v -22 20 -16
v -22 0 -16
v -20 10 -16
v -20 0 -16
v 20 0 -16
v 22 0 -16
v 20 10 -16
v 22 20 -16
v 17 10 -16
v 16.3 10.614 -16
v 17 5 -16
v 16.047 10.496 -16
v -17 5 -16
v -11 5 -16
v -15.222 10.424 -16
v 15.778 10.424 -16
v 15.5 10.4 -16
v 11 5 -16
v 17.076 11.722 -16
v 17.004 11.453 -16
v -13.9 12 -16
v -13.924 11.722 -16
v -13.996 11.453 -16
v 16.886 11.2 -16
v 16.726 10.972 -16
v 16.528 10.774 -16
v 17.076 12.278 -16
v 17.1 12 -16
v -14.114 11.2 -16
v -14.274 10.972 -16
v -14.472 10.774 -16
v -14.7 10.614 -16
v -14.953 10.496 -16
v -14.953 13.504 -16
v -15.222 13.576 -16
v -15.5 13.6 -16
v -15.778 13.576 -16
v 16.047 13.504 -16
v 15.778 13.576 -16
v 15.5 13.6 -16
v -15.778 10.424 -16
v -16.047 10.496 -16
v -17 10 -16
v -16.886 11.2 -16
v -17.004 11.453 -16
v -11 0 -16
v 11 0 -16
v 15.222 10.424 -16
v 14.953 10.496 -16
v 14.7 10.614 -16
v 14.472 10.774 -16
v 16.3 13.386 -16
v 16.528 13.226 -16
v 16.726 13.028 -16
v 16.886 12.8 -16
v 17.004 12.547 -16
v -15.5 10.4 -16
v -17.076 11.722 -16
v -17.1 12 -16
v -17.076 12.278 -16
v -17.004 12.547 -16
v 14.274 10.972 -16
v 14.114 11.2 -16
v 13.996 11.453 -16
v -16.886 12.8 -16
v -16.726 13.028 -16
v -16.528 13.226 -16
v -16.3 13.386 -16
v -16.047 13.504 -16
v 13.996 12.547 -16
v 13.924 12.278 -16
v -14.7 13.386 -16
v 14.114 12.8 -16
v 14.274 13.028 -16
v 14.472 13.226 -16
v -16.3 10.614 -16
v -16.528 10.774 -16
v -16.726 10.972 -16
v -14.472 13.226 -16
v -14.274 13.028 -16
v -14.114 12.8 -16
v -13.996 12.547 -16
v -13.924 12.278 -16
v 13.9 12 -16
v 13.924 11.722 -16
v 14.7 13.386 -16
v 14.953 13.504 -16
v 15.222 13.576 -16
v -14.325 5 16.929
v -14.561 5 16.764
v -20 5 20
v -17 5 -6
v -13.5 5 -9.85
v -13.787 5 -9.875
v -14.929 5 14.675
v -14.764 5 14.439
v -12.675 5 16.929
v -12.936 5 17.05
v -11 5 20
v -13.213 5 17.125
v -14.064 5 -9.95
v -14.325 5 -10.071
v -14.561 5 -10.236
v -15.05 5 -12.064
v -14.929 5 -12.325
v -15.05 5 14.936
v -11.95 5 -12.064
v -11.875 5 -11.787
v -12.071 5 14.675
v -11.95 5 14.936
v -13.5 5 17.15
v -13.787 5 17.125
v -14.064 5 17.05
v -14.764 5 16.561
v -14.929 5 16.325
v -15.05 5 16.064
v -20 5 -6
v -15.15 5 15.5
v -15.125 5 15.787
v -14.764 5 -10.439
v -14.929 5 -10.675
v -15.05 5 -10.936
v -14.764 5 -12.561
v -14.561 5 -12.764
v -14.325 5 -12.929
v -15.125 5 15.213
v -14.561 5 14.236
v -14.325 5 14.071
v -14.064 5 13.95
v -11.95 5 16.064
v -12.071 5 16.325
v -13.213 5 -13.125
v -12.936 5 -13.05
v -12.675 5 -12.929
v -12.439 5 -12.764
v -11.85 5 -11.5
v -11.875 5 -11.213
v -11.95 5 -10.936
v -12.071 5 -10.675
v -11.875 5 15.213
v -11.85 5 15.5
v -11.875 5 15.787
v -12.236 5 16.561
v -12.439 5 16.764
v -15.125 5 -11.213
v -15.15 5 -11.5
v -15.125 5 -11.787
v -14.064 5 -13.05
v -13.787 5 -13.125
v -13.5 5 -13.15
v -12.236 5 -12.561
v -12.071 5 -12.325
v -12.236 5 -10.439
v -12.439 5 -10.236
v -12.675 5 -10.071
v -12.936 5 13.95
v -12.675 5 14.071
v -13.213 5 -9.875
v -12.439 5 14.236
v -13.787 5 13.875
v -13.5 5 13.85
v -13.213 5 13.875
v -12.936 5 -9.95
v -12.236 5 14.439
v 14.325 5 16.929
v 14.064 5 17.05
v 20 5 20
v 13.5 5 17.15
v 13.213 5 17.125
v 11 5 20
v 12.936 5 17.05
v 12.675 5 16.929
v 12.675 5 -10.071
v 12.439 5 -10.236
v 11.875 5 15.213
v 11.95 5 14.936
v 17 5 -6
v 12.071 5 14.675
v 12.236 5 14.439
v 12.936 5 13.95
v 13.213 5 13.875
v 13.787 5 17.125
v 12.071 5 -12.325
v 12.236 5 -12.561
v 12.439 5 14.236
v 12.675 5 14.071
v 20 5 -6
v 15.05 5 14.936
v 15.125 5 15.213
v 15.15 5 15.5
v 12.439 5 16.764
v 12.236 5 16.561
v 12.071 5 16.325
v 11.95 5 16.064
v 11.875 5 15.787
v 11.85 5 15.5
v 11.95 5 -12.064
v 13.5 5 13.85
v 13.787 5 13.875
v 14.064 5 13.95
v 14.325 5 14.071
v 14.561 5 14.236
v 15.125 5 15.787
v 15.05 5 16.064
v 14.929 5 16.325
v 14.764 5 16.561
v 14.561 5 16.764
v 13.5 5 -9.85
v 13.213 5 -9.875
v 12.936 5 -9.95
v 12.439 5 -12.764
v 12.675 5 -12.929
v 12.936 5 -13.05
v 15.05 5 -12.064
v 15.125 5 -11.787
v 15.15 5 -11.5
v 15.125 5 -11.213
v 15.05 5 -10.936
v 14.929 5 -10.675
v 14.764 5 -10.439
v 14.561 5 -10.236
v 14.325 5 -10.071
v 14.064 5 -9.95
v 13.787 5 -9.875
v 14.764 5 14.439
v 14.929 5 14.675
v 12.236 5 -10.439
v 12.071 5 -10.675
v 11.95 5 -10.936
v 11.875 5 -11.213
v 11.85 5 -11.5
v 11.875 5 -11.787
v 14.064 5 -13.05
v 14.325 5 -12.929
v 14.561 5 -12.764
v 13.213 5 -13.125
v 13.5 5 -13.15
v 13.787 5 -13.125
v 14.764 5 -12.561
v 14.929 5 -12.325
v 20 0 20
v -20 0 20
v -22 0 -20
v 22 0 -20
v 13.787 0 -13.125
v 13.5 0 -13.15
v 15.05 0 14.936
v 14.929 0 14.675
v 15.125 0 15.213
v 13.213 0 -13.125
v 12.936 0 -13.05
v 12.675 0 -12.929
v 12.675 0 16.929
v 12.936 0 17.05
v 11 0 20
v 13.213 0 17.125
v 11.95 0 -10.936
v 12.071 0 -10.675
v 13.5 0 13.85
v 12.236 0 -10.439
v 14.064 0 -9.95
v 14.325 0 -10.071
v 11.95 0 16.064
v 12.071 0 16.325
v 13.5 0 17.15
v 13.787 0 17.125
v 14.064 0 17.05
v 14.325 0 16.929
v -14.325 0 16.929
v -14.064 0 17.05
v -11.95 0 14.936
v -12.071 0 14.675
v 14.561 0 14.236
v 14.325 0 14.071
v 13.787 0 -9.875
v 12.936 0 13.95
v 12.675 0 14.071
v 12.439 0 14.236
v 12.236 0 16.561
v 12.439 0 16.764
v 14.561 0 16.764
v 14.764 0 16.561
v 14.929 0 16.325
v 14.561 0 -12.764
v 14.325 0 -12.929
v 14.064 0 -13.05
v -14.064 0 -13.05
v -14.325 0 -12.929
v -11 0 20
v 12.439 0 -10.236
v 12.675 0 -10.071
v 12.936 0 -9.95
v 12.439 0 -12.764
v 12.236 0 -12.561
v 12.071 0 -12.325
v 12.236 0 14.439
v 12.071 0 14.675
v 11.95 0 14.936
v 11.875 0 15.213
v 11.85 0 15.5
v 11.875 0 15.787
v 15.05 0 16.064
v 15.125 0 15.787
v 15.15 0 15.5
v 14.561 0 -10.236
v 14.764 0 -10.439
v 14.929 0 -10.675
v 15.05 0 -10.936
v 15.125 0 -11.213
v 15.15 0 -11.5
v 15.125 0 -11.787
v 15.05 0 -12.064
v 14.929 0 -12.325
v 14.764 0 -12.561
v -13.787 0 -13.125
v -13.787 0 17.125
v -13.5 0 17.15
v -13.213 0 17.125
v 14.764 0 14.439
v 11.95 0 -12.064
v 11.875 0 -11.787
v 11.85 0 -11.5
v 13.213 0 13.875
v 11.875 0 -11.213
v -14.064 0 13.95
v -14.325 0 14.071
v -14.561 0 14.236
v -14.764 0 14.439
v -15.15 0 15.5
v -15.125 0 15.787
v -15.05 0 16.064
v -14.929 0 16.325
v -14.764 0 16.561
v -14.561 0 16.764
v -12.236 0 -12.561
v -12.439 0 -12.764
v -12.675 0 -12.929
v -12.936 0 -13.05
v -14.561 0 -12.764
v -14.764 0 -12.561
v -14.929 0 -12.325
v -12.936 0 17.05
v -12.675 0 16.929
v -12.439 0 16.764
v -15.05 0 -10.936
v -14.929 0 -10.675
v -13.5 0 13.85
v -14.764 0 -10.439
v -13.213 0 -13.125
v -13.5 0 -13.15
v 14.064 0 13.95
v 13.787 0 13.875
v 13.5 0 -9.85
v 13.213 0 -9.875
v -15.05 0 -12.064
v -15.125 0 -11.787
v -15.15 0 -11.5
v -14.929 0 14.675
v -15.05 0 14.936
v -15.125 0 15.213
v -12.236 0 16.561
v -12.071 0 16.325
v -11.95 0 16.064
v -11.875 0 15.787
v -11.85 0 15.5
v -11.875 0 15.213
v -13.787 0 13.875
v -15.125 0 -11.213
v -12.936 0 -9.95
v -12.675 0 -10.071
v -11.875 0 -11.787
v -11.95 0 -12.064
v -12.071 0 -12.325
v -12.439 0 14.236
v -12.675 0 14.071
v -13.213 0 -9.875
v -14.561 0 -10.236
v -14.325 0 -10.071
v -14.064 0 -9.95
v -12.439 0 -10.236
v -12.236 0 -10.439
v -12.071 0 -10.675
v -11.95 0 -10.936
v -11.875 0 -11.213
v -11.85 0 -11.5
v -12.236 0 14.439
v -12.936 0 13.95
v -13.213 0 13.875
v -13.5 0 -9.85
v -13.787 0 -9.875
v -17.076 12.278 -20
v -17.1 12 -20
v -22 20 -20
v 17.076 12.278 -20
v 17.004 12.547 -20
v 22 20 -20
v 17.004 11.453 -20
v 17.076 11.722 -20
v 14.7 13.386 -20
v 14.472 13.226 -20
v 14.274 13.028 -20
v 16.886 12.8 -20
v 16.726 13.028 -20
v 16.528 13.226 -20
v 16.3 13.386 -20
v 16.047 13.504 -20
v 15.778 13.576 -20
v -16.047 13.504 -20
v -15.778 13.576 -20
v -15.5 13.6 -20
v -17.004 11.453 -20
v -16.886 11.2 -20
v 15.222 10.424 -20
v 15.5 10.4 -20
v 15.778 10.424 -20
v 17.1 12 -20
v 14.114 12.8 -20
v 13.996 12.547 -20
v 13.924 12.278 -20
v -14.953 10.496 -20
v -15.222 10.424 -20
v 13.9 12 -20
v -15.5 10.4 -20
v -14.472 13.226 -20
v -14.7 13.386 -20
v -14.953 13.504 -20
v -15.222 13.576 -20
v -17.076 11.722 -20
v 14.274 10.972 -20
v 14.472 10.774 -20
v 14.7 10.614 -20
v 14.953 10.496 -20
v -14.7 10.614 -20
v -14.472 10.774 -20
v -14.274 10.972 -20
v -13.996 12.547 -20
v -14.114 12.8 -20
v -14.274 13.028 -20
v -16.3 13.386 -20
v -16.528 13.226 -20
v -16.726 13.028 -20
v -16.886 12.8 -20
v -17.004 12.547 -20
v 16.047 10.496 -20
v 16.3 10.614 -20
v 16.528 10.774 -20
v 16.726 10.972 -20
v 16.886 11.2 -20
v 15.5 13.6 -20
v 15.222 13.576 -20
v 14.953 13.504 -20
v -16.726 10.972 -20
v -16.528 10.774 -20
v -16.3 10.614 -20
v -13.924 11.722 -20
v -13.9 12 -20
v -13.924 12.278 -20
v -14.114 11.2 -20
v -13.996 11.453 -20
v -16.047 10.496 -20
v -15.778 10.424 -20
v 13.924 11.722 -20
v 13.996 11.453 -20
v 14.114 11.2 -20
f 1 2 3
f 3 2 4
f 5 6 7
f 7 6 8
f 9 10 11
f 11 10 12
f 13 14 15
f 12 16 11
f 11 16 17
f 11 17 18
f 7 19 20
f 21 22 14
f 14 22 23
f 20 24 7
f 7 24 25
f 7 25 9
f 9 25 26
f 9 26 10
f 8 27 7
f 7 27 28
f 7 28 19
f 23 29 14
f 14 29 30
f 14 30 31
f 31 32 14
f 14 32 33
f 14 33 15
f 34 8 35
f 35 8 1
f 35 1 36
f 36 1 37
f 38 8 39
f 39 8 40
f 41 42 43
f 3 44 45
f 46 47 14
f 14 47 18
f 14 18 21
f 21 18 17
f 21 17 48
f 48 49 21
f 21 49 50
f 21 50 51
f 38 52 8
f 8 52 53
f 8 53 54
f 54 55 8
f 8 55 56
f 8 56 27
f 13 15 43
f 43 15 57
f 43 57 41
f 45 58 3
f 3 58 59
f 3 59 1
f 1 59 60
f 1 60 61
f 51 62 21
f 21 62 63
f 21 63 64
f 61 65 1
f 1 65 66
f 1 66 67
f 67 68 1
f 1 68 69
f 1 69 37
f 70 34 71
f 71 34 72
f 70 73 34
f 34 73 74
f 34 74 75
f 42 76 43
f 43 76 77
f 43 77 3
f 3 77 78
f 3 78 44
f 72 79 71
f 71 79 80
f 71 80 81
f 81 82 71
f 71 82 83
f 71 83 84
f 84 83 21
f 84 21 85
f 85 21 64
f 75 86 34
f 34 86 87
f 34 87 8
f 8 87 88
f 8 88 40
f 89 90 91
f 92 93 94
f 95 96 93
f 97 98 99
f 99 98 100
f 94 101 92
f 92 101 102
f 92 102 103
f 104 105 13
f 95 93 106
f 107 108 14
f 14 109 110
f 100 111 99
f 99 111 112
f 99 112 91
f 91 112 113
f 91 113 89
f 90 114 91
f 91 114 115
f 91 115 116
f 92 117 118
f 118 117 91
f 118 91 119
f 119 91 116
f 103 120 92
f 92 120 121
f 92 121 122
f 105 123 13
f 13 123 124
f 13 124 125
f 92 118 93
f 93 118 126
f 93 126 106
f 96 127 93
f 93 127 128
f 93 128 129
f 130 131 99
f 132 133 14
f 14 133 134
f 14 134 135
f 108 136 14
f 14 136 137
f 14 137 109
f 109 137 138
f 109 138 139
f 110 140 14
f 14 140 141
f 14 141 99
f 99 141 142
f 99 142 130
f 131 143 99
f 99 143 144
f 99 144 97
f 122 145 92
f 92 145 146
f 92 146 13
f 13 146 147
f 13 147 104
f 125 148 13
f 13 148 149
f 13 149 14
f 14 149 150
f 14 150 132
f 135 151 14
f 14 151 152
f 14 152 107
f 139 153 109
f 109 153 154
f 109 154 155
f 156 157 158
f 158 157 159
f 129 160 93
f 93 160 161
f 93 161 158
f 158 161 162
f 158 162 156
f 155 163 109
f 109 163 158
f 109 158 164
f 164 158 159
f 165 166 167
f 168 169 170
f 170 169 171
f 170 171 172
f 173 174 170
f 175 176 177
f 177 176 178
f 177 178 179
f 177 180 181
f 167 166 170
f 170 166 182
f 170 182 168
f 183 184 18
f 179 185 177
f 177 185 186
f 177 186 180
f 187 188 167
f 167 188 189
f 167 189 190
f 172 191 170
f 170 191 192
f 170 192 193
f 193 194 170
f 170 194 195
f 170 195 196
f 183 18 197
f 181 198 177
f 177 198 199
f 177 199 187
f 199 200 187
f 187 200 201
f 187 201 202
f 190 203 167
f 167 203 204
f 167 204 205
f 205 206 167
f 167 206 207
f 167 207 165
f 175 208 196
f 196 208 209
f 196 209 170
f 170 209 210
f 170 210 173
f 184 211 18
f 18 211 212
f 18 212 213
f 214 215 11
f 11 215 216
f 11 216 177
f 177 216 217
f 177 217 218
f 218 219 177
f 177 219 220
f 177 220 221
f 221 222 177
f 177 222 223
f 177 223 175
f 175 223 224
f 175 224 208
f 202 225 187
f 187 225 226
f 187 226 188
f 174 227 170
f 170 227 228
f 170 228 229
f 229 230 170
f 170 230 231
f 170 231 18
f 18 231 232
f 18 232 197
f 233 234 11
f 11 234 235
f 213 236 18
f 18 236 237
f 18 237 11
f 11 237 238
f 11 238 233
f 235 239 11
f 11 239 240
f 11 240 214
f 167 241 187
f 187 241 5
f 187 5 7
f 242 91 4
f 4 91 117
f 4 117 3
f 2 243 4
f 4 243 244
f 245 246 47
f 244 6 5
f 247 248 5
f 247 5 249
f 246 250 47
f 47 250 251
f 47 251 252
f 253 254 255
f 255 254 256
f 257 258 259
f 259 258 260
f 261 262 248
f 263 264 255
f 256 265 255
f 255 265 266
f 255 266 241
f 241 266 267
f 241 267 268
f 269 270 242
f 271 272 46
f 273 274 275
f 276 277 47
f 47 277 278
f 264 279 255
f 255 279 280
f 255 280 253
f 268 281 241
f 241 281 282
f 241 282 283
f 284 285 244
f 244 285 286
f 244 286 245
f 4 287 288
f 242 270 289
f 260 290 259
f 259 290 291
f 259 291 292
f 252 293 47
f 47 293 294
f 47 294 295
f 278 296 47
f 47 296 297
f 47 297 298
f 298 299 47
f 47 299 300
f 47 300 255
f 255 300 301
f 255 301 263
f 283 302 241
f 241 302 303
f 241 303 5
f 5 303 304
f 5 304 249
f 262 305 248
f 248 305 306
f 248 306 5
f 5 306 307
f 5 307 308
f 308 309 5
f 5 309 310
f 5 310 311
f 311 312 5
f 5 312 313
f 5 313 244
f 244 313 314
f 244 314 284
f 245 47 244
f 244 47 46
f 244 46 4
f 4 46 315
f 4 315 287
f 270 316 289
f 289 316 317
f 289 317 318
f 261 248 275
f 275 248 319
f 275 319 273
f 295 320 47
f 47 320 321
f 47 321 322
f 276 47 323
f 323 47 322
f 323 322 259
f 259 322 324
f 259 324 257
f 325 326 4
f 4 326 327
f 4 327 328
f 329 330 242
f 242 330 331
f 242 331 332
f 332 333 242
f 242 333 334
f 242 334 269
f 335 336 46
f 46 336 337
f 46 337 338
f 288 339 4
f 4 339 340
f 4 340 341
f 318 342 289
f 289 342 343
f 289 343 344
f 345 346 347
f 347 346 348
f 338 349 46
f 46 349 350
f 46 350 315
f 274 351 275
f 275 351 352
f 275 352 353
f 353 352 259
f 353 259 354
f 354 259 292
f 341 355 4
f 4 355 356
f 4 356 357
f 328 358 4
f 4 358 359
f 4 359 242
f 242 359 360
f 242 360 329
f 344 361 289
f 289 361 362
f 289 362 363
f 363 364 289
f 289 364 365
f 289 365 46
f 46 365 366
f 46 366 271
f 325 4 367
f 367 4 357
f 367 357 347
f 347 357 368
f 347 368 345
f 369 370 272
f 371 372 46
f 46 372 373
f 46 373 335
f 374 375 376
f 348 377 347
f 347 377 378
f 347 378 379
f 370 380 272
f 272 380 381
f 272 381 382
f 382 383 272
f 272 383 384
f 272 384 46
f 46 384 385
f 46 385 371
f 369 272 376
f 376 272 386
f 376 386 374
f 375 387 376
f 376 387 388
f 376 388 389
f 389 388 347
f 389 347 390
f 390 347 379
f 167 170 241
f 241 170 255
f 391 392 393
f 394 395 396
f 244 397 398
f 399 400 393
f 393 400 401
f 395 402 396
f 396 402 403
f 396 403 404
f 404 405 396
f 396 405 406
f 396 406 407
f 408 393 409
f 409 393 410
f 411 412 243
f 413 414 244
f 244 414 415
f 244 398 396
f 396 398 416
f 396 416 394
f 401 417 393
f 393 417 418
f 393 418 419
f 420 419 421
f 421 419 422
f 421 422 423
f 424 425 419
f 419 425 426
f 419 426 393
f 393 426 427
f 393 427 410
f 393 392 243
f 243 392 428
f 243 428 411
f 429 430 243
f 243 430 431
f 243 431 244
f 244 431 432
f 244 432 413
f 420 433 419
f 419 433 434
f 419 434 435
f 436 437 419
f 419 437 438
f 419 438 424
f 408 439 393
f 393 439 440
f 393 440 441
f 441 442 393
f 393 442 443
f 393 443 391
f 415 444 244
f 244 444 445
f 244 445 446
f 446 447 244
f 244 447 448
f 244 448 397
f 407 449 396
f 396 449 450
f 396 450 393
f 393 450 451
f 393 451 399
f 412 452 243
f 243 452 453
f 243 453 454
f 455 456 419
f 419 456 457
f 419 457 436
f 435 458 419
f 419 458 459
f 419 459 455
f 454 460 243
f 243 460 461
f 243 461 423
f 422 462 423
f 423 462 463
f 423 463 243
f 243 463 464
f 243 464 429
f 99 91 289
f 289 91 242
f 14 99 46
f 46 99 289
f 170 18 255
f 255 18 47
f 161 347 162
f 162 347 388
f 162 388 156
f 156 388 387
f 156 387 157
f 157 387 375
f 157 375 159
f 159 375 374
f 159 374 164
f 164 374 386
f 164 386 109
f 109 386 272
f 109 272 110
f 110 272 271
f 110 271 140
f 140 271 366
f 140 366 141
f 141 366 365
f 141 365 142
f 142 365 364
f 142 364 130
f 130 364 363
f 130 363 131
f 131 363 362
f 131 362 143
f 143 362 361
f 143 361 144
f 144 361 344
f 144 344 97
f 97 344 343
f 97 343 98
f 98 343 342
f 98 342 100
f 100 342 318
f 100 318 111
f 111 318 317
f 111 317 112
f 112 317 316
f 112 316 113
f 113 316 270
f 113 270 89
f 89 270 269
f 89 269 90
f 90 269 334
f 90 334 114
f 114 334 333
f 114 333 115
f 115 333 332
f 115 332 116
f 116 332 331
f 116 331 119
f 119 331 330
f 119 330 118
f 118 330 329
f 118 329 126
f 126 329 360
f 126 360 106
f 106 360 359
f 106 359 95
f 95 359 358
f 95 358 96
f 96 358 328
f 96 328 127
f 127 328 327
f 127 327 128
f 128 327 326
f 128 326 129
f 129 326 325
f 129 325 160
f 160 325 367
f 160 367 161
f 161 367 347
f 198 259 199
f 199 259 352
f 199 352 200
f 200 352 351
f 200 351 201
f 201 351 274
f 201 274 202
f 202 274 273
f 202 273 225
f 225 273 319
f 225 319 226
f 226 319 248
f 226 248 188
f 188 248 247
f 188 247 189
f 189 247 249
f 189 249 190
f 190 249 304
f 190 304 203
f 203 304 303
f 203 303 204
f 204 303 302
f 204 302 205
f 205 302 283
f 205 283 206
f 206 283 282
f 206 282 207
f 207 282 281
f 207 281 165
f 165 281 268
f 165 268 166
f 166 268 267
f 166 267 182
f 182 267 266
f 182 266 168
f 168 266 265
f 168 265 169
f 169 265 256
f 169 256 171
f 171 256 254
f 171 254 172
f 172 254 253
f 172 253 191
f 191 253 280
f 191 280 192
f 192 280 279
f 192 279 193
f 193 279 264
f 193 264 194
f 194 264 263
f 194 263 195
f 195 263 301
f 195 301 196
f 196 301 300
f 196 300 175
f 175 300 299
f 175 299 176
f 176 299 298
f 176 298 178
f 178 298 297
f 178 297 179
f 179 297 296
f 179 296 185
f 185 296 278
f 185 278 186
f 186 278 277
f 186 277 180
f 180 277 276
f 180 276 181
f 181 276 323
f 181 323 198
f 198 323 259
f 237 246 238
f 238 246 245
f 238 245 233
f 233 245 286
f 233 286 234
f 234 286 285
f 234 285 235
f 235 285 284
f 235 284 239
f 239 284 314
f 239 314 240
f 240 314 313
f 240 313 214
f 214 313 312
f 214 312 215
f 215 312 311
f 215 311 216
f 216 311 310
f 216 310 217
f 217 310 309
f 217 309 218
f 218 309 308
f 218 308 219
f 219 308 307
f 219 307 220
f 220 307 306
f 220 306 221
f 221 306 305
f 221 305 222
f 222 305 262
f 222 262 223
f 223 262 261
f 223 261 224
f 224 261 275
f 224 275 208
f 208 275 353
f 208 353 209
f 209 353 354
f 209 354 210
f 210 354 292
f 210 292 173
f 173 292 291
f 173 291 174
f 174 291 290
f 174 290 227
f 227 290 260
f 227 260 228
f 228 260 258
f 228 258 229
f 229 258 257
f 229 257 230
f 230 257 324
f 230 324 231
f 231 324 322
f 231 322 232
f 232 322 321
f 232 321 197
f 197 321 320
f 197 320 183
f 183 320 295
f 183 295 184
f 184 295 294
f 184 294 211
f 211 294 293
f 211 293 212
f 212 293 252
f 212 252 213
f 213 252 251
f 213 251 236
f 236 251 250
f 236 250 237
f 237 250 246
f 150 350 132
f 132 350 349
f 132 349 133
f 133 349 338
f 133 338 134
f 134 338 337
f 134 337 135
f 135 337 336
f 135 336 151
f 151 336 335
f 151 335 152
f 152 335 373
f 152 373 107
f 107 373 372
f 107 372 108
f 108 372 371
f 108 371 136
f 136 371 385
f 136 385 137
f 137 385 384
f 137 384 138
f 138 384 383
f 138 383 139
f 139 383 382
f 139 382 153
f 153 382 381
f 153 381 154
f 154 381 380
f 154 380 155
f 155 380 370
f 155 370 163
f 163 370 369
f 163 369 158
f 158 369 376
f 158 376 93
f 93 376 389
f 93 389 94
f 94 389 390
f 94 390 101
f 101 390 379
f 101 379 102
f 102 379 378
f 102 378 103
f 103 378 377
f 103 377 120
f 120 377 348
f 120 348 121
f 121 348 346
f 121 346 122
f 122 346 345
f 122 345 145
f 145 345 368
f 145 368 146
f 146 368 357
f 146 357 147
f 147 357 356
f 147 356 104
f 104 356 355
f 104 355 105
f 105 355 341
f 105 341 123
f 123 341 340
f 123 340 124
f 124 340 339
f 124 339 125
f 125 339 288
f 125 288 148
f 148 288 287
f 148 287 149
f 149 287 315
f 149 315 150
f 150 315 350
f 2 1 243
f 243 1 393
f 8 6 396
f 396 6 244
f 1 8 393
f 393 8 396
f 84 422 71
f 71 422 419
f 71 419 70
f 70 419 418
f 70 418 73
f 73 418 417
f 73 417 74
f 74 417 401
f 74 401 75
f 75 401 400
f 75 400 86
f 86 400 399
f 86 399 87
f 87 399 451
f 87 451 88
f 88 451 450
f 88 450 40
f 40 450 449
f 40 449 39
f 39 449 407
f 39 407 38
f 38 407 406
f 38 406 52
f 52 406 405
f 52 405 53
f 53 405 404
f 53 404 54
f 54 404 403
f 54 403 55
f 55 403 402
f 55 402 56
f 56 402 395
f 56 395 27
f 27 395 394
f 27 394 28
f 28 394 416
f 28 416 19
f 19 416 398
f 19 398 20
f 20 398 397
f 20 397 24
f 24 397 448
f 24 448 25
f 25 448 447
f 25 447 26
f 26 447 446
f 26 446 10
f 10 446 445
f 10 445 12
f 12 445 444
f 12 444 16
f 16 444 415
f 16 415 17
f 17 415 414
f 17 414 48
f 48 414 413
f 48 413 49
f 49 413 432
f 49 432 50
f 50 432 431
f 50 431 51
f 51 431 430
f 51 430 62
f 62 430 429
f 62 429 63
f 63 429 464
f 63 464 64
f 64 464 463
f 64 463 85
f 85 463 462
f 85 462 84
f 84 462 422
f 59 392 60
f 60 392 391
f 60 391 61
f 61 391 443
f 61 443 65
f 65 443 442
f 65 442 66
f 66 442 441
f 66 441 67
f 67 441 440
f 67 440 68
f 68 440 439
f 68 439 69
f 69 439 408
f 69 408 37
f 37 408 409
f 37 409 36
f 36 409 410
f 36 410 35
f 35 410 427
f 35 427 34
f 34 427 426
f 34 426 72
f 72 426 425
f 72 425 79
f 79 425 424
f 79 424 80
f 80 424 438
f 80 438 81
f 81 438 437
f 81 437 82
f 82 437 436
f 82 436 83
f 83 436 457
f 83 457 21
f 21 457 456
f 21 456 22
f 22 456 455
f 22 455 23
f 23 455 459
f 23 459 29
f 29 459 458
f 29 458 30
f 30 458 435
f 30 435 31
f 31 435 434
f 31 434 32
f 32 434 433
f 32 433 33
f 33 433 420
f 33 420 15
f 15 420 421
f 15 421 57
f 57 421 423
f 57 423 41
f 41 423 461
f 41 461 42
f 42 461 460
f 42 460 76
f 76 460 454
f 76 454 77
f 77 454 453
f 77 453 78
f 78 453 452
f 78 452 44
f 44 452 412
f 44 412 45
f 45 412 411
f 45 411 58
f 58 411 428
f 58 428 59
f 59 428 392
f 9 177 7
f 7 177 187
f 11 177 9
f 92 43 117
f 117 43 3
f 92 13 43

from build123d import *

# Parameters (mm, degrees)
SKETCH_1_R      = 1.65
EXTRUDE_1_DEPTH = 5
SKETCH_2_W      = 44
SKETCH_2_H      = 20
SKETCH_2_R      = 1.6
EXTRUDE_2_DEPTH = 4
EXTRUDE_4_DEPTH = 3
EXTRUDE_5_DEPTH = 3
EXTRUDE_6_DEPTH = 3


with BuildPart() as part:
    # 草图1 → 凸台-拉伸1 (new body)
    with BuildSketch(Plane(origin=(0, 0, 0), x_dir=(1, 0, 0), z_dir=(0, 1, 0))):
        Polygon((-20, 20), (20, 20), (20, -20), (11, -20), (11, 16), (-11, 16), (-11, -20), (-20, -20), align=None)
        with Locations(Location((-13.5, -15.5, 0), (0, 0, 270))):
            Circle(SKETCH_1_R, mode=Mode.SUBTRACT)
        with Locations(Location((13.5, -15.5, 0), (0, 0, 90))):
            Circle(SKETCH_1_R, mode=Mode.SUBTRACT)
        with Locations(Location((13.5, 11.5, 0), (0, 0, 270))):
            Circle(SKETCH_1_R, mode=Mode.SUBTRACT)
        with Locations(Location((-13.5, 11.5, 0), (0, 0, 90))):
            Circle(SKETCH_1_R, mode=Mode.SUBTRACT)
    extrude(amount=EXTRUDE_1_DEPTH)

    # 草图2 → 凸台-拉伸2 (add)
    with BuildSketch(Plane(origin=(0, 0, -20), x_dir=(-1, 0, 0), z_dir=(0, 0, -1))):
        with Locations((0, 10)):
            Rectangle(SKETCH_2_W, SKETCH_2_H)
        with Locations((-15.5, 12)):
            Circle(SKETCH_2_R, mode=Mode.SUBTRACT)
        with Locations(Location((15.5, 12, 0), (0, 0, 180))):
            Circle(SKETCH_2_R, mode=Mode.SUBTRACT)
    extrude(amount=-EXTRUDE_2_DEPTH)

    # 草图4 → 凸台-拉伸4 (add)
    with BuildSketch(Plane.ZY.offset(20)):
        Polygon((-16, 0), (-6, 5), (-16, 5), align=None)
    extrude(amount=-EXTRUDE_4_DEPTH)

    # 草图5 → 凸台-拉伸5 (add)
    with BuildSketch(Plane(origin=(20, 0, 0), x_dir=(0, 0, -1), z_dir=(1, 0, 0))):
        Polygon((16, 10), (6, 5), (16, 5), align=None)
    extrude(amount=-EXTRUDE_5_DEPTH)

    # 草图6 → 凸台-拉伸6 (add)
    with BuildSketch(Plane.ZY.offset(20)):
        Polygon((-16, 10), (-16, 5), (-6, 5), align=None)
    extrude(amount=-EXTRUDE_6_DEPTH)


solid = part.part
